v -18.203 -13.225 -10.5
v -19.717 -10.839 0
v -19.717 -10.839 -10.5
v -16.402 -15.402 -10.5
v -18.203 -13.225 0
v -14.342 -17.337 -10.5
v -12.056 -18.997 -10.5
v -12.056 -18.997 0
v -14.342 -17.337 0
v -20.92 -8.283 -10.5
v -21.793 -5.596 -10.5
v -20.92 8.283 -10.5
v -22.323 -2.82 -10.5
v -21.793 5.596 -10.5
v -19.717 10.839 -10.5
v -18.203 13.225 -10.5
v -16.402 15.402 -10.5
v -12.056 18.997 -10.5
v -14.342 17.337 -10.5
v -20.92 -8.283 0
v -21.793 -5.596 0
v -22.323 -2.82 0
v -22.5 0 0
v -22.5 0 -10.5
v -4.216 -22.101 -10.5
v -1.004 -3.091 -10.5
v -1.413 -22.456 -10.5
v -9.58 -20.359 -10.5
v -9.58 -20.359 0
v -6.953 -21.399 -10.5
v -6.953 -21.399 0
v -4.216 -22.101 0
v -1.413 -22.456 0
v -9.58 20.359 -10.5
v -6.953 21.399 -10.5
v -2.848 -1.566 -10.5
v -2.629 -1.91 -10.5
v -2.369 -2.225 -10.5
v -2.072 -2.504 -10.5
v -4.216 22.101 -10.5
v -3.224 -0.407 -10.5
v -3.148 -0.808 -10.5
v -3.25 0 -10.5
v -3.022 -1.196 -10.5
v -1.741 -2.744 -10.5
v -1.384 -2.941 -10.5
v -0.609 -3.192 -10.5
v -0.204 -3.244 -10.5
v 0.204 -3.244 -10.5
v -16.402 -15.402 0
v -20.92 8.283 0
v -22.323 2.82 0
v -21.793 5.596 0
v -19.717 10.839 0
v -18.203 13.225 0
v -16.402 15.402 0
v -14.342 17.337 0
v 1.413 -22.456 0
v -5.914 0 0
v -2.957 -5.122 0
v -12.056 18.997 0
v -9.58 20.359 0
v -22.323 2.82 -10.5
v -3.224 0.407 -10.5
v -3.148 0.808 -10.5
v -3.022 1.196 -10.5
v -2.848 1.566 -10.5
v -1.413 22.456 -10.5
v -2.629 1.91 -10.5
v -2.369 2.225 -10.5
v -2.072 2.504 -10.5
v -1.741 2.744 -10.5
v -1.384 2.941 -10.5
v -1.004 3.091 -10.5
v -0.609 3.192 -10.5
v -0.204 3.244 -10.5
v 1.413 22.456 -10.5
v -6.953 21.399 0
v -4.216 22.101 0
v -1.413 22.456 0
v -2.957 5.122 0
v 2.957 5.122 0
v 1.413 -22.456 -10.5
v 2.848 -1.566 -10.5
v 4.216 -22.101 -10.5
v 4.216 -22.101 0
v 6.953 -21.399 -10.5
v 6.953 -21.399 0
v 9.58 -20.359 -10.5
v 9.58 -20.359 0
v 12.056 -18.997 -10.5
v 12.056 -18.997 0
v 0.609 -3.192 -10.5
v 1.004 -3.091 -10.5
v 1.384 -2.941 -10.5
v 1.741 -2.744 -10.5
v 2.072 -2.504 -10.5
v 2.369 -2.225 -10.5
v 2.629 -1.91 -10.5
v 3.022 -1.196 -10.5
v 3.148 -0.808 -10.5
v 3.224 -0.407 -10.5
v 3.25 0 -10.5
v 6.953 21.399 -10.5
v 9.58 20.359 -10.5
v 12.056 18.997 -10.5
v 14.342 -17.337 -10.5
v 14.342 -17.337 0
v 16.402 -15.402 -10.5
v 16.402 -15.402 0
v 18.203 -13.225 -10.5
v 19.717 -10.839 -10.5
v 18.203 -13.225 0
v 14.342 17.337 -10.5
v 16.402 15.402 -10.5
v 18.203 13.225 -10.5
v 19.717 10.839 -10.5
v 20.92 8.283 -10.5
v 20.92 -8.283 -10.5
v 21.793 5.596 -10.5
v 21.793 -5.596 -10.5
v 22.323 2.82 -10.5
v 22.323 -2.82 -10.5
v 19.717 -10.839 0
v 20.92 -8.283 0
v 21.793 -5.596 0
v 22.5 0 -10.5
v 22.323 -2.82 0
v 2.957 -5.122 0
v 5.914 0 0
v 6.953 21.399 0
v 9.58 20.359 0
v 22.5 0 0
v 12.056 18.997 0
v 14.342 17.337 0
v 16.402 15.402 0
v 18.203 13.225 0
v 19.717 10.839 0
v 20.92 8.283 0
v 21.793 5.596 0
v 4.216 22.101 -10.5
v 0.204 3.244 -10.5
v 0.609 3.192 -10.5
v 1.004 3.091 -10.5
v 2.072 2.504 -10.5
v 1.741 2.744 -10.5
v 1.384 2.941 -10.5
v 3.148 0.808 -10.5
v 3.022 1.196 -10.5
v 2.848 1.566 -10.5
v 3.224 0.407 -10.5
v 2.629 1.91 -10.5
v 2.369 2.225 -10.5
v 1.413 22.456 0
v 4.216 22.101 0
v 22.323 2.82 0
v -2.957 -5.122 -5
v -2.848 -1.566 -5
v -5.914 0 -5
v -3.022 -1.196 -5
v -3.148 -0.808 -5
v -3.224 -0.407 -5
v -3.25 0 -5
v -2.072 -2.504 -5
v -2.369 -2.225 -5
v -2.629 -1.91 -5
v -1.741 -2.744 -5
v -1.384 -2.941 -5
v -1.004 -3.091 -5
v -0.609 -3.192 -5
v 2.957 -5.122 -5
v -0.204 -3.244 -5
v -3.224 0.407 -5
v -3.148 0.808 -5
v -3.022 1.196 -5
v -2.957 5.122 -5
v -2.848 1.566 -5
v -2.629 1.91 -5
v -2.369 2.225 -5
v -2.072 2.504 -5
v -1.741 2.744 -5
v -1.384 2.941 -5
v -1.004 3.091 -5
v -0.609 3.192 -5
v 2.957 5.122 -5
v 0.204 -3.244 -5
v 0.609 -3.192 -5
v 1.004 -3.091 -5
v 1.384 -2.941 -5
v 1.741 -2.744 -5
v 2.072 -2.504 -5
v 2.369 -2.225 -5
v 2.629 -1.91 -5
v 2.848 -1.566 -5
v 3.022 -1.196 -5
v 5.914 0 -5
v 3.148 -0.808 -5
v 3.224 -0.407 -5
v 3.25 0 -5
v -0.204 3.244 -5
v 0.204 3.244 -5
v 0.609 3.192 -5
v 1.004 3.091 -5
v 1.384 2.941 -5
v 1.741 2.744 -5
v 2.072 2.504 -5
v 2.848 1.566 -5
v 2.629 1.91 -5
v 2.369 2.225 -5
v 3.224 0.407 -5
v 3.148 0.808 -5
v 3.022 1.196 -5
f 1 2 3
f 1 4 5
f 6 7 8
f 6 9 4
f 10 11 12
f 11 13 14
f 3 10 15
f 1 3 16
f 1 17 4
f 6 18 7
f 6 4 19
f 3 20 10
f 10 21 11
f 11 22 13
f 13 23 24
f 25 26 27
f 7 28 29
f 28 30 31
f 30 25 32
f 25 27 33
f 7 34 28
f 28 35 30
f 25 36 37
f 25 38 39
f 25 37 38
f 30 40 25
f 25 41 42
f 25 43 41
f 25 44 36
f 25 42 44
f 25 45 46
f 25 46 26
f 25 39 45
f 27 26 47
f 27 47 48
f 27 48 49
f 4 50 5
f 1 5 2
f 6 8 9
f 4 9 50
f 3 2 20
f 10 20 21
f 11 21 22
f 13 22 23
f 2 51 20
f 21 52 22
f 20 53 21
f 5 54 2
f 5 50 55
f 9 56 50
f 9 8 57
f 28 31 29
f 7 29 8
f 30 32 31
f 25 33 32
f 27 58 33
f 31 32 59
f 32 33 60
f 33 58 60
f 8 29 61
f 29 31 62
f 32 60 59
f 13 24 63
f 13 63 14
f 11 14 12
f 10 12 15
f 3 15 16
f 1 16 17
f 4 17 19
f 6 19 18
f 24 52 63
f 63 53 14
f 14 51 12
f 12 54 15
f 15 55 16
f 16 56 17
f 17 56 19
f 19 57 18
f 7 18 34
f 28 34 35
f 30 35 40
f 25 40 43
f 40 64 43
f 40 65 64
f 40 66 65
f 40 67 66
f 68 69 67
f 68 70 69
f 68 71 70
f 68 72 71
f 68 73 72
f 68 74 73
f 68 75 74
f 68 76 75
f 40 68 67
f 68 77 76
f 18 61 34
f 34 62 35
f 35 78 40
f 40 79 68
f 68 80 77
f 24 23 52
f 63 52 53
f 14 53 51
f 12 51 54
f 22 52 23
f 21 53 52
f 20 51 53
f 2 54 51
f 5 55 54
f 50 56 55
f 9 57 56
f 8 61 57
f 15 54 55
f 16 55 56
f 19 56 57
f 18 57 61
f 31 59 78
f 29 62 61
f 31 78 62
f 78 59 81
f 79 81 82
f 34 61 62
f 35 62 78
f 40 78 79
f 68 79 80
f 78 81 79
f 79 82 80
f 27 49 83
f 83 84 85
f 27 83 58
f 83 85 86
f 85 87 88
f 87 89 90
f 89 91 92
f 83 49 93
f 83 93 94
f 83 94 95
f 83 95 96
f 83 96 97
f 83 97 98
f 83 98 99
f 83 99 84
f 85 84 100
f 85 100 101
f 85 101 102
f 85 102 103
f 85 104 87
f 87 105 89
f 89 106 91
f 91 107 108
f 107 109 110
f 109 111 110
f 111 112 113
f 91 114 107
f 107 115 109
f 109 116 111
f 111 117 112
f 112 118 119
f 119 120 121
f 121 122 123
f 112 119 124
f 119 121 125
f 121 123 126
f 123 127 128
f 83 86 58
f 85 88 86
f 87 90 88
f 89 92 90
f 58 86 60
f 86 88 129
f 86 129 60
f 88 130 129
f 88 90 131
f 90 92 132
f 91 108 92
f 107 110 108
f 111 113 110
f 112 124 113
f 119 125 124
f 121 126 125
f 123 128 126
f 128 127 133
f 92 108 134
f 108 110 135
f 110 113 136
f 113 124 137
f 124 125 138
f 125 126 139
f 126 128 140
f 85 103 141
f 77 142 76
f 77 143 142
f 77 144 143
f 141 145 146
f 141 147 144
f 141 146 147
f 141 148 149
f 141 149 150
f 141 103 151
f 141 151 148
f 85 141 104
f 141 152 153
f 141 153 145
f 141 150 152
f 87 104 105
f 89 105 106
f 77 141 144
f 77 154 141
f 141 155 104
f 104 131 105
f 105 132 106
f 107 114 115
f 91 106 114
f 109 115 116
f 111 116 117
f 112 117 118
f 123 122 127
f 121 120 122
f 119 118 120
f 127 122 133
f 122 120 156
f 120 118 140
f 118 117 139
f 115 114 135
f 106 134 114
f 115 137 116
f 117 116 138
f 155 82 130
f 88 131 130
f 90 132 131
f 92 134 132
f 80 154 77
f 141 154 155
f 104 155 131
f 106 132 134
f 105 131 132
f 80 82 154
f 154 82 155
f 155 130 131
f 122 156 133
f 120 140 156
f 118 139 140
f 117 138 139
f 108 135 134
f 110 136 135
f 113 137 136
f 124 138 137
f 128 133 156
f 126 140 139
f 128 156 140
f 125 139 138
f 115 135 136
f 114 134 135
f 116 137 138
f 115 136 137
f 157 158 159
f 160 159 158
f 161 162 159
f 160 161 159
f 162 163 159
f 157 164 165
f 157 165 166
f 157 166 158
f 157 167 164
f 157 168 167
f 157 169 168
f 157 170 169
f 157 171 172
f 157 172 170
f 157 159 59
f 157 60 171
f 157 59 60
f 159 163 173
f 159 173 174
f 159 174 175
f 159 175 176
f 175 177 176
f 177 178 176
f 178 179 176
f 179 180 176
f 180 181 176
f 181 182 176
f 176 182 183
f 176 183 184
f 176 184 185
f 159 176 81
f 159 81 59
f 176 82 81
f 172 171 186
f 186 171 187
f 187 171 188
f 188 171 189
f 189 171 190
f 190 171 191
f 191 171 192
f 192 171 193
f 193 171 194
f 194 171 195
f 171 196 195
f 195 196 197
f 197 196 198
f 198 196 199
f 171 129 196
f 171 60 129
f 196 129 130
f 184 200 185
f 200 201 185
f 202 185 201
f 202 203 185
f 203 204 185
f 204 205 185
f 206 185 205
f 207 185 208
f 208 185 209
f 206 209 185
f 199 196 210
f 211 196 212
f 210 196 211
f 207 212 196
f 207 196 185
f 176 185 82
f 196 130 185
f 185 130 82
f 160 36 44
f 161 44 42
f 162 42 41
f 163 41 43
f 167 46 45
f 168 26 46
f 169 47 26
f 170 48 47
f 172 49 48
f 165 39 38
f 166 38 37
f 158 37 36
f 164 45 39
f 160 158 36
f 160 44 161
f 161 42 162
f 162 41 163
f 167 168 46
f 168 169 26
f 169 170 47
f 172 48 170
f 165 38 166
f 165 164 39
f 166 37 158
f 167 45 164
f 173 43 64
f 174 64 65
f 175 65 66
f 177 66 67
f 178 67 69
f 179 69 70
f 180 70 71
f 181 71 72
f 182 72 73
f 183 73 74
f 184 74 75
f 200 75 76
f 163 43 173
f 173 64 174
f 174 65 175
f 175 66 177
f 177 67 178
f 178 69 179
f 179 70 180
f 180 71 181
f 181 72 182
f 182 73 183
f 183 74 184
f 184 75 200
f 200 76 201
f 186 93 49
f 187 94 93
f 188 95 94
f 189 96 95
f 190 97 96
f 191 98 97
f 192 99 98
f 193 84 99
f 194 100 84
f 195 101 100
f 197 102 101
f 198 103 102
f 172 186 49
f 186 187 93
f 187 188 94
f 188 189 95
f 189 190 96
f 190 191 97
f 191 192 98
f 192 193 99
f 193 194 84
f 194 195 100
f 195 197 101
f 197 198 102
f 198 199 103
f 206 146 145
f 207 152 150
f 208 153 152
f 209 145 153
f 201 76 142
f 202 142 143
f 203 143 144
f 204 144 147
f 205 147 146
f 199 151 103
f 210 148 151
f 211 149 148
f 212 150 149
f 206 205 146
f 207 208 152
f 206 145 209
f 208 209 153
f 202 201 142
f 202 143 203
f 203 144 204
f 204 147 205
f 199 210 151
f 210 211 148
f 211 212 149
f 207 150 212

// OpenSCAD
$fn = 50;

difference() {
	union() {
		translate(v = [0, 0, -10.5]) {
			cylinder(h = 10.5, r = 22.5);
		}
		#translate(v = [0, 0, -12.0]) {
			cylinder(h = 12, r = 2.875);
		}
	}
	union() {
		translate(v = [0, 0, 0]) {
			rotate(a = [0, 0, 0]) {
				difference() {
					union() {
						translate(v = [0, 0, -5]) {
							linear_extrude(height = 5) {
								polygon(points = [[5.914249999999999, 0.0], [2.957125, 5.1218907443321156], [-2.9571249999999982, 5.1218907443321156], [-5.914249999999999, 7.242867331857232e-16], [-2.9571250000000022, -5.121890744332115], [2.9571249999999956, -5.121890744332118]]);
							}
						}
					}
					union();
				}
			}
		}
		#translate(v = [0, 0, -100.0]) {
			cylinder(h = 200, r = 3.25);
		}
	}
}
